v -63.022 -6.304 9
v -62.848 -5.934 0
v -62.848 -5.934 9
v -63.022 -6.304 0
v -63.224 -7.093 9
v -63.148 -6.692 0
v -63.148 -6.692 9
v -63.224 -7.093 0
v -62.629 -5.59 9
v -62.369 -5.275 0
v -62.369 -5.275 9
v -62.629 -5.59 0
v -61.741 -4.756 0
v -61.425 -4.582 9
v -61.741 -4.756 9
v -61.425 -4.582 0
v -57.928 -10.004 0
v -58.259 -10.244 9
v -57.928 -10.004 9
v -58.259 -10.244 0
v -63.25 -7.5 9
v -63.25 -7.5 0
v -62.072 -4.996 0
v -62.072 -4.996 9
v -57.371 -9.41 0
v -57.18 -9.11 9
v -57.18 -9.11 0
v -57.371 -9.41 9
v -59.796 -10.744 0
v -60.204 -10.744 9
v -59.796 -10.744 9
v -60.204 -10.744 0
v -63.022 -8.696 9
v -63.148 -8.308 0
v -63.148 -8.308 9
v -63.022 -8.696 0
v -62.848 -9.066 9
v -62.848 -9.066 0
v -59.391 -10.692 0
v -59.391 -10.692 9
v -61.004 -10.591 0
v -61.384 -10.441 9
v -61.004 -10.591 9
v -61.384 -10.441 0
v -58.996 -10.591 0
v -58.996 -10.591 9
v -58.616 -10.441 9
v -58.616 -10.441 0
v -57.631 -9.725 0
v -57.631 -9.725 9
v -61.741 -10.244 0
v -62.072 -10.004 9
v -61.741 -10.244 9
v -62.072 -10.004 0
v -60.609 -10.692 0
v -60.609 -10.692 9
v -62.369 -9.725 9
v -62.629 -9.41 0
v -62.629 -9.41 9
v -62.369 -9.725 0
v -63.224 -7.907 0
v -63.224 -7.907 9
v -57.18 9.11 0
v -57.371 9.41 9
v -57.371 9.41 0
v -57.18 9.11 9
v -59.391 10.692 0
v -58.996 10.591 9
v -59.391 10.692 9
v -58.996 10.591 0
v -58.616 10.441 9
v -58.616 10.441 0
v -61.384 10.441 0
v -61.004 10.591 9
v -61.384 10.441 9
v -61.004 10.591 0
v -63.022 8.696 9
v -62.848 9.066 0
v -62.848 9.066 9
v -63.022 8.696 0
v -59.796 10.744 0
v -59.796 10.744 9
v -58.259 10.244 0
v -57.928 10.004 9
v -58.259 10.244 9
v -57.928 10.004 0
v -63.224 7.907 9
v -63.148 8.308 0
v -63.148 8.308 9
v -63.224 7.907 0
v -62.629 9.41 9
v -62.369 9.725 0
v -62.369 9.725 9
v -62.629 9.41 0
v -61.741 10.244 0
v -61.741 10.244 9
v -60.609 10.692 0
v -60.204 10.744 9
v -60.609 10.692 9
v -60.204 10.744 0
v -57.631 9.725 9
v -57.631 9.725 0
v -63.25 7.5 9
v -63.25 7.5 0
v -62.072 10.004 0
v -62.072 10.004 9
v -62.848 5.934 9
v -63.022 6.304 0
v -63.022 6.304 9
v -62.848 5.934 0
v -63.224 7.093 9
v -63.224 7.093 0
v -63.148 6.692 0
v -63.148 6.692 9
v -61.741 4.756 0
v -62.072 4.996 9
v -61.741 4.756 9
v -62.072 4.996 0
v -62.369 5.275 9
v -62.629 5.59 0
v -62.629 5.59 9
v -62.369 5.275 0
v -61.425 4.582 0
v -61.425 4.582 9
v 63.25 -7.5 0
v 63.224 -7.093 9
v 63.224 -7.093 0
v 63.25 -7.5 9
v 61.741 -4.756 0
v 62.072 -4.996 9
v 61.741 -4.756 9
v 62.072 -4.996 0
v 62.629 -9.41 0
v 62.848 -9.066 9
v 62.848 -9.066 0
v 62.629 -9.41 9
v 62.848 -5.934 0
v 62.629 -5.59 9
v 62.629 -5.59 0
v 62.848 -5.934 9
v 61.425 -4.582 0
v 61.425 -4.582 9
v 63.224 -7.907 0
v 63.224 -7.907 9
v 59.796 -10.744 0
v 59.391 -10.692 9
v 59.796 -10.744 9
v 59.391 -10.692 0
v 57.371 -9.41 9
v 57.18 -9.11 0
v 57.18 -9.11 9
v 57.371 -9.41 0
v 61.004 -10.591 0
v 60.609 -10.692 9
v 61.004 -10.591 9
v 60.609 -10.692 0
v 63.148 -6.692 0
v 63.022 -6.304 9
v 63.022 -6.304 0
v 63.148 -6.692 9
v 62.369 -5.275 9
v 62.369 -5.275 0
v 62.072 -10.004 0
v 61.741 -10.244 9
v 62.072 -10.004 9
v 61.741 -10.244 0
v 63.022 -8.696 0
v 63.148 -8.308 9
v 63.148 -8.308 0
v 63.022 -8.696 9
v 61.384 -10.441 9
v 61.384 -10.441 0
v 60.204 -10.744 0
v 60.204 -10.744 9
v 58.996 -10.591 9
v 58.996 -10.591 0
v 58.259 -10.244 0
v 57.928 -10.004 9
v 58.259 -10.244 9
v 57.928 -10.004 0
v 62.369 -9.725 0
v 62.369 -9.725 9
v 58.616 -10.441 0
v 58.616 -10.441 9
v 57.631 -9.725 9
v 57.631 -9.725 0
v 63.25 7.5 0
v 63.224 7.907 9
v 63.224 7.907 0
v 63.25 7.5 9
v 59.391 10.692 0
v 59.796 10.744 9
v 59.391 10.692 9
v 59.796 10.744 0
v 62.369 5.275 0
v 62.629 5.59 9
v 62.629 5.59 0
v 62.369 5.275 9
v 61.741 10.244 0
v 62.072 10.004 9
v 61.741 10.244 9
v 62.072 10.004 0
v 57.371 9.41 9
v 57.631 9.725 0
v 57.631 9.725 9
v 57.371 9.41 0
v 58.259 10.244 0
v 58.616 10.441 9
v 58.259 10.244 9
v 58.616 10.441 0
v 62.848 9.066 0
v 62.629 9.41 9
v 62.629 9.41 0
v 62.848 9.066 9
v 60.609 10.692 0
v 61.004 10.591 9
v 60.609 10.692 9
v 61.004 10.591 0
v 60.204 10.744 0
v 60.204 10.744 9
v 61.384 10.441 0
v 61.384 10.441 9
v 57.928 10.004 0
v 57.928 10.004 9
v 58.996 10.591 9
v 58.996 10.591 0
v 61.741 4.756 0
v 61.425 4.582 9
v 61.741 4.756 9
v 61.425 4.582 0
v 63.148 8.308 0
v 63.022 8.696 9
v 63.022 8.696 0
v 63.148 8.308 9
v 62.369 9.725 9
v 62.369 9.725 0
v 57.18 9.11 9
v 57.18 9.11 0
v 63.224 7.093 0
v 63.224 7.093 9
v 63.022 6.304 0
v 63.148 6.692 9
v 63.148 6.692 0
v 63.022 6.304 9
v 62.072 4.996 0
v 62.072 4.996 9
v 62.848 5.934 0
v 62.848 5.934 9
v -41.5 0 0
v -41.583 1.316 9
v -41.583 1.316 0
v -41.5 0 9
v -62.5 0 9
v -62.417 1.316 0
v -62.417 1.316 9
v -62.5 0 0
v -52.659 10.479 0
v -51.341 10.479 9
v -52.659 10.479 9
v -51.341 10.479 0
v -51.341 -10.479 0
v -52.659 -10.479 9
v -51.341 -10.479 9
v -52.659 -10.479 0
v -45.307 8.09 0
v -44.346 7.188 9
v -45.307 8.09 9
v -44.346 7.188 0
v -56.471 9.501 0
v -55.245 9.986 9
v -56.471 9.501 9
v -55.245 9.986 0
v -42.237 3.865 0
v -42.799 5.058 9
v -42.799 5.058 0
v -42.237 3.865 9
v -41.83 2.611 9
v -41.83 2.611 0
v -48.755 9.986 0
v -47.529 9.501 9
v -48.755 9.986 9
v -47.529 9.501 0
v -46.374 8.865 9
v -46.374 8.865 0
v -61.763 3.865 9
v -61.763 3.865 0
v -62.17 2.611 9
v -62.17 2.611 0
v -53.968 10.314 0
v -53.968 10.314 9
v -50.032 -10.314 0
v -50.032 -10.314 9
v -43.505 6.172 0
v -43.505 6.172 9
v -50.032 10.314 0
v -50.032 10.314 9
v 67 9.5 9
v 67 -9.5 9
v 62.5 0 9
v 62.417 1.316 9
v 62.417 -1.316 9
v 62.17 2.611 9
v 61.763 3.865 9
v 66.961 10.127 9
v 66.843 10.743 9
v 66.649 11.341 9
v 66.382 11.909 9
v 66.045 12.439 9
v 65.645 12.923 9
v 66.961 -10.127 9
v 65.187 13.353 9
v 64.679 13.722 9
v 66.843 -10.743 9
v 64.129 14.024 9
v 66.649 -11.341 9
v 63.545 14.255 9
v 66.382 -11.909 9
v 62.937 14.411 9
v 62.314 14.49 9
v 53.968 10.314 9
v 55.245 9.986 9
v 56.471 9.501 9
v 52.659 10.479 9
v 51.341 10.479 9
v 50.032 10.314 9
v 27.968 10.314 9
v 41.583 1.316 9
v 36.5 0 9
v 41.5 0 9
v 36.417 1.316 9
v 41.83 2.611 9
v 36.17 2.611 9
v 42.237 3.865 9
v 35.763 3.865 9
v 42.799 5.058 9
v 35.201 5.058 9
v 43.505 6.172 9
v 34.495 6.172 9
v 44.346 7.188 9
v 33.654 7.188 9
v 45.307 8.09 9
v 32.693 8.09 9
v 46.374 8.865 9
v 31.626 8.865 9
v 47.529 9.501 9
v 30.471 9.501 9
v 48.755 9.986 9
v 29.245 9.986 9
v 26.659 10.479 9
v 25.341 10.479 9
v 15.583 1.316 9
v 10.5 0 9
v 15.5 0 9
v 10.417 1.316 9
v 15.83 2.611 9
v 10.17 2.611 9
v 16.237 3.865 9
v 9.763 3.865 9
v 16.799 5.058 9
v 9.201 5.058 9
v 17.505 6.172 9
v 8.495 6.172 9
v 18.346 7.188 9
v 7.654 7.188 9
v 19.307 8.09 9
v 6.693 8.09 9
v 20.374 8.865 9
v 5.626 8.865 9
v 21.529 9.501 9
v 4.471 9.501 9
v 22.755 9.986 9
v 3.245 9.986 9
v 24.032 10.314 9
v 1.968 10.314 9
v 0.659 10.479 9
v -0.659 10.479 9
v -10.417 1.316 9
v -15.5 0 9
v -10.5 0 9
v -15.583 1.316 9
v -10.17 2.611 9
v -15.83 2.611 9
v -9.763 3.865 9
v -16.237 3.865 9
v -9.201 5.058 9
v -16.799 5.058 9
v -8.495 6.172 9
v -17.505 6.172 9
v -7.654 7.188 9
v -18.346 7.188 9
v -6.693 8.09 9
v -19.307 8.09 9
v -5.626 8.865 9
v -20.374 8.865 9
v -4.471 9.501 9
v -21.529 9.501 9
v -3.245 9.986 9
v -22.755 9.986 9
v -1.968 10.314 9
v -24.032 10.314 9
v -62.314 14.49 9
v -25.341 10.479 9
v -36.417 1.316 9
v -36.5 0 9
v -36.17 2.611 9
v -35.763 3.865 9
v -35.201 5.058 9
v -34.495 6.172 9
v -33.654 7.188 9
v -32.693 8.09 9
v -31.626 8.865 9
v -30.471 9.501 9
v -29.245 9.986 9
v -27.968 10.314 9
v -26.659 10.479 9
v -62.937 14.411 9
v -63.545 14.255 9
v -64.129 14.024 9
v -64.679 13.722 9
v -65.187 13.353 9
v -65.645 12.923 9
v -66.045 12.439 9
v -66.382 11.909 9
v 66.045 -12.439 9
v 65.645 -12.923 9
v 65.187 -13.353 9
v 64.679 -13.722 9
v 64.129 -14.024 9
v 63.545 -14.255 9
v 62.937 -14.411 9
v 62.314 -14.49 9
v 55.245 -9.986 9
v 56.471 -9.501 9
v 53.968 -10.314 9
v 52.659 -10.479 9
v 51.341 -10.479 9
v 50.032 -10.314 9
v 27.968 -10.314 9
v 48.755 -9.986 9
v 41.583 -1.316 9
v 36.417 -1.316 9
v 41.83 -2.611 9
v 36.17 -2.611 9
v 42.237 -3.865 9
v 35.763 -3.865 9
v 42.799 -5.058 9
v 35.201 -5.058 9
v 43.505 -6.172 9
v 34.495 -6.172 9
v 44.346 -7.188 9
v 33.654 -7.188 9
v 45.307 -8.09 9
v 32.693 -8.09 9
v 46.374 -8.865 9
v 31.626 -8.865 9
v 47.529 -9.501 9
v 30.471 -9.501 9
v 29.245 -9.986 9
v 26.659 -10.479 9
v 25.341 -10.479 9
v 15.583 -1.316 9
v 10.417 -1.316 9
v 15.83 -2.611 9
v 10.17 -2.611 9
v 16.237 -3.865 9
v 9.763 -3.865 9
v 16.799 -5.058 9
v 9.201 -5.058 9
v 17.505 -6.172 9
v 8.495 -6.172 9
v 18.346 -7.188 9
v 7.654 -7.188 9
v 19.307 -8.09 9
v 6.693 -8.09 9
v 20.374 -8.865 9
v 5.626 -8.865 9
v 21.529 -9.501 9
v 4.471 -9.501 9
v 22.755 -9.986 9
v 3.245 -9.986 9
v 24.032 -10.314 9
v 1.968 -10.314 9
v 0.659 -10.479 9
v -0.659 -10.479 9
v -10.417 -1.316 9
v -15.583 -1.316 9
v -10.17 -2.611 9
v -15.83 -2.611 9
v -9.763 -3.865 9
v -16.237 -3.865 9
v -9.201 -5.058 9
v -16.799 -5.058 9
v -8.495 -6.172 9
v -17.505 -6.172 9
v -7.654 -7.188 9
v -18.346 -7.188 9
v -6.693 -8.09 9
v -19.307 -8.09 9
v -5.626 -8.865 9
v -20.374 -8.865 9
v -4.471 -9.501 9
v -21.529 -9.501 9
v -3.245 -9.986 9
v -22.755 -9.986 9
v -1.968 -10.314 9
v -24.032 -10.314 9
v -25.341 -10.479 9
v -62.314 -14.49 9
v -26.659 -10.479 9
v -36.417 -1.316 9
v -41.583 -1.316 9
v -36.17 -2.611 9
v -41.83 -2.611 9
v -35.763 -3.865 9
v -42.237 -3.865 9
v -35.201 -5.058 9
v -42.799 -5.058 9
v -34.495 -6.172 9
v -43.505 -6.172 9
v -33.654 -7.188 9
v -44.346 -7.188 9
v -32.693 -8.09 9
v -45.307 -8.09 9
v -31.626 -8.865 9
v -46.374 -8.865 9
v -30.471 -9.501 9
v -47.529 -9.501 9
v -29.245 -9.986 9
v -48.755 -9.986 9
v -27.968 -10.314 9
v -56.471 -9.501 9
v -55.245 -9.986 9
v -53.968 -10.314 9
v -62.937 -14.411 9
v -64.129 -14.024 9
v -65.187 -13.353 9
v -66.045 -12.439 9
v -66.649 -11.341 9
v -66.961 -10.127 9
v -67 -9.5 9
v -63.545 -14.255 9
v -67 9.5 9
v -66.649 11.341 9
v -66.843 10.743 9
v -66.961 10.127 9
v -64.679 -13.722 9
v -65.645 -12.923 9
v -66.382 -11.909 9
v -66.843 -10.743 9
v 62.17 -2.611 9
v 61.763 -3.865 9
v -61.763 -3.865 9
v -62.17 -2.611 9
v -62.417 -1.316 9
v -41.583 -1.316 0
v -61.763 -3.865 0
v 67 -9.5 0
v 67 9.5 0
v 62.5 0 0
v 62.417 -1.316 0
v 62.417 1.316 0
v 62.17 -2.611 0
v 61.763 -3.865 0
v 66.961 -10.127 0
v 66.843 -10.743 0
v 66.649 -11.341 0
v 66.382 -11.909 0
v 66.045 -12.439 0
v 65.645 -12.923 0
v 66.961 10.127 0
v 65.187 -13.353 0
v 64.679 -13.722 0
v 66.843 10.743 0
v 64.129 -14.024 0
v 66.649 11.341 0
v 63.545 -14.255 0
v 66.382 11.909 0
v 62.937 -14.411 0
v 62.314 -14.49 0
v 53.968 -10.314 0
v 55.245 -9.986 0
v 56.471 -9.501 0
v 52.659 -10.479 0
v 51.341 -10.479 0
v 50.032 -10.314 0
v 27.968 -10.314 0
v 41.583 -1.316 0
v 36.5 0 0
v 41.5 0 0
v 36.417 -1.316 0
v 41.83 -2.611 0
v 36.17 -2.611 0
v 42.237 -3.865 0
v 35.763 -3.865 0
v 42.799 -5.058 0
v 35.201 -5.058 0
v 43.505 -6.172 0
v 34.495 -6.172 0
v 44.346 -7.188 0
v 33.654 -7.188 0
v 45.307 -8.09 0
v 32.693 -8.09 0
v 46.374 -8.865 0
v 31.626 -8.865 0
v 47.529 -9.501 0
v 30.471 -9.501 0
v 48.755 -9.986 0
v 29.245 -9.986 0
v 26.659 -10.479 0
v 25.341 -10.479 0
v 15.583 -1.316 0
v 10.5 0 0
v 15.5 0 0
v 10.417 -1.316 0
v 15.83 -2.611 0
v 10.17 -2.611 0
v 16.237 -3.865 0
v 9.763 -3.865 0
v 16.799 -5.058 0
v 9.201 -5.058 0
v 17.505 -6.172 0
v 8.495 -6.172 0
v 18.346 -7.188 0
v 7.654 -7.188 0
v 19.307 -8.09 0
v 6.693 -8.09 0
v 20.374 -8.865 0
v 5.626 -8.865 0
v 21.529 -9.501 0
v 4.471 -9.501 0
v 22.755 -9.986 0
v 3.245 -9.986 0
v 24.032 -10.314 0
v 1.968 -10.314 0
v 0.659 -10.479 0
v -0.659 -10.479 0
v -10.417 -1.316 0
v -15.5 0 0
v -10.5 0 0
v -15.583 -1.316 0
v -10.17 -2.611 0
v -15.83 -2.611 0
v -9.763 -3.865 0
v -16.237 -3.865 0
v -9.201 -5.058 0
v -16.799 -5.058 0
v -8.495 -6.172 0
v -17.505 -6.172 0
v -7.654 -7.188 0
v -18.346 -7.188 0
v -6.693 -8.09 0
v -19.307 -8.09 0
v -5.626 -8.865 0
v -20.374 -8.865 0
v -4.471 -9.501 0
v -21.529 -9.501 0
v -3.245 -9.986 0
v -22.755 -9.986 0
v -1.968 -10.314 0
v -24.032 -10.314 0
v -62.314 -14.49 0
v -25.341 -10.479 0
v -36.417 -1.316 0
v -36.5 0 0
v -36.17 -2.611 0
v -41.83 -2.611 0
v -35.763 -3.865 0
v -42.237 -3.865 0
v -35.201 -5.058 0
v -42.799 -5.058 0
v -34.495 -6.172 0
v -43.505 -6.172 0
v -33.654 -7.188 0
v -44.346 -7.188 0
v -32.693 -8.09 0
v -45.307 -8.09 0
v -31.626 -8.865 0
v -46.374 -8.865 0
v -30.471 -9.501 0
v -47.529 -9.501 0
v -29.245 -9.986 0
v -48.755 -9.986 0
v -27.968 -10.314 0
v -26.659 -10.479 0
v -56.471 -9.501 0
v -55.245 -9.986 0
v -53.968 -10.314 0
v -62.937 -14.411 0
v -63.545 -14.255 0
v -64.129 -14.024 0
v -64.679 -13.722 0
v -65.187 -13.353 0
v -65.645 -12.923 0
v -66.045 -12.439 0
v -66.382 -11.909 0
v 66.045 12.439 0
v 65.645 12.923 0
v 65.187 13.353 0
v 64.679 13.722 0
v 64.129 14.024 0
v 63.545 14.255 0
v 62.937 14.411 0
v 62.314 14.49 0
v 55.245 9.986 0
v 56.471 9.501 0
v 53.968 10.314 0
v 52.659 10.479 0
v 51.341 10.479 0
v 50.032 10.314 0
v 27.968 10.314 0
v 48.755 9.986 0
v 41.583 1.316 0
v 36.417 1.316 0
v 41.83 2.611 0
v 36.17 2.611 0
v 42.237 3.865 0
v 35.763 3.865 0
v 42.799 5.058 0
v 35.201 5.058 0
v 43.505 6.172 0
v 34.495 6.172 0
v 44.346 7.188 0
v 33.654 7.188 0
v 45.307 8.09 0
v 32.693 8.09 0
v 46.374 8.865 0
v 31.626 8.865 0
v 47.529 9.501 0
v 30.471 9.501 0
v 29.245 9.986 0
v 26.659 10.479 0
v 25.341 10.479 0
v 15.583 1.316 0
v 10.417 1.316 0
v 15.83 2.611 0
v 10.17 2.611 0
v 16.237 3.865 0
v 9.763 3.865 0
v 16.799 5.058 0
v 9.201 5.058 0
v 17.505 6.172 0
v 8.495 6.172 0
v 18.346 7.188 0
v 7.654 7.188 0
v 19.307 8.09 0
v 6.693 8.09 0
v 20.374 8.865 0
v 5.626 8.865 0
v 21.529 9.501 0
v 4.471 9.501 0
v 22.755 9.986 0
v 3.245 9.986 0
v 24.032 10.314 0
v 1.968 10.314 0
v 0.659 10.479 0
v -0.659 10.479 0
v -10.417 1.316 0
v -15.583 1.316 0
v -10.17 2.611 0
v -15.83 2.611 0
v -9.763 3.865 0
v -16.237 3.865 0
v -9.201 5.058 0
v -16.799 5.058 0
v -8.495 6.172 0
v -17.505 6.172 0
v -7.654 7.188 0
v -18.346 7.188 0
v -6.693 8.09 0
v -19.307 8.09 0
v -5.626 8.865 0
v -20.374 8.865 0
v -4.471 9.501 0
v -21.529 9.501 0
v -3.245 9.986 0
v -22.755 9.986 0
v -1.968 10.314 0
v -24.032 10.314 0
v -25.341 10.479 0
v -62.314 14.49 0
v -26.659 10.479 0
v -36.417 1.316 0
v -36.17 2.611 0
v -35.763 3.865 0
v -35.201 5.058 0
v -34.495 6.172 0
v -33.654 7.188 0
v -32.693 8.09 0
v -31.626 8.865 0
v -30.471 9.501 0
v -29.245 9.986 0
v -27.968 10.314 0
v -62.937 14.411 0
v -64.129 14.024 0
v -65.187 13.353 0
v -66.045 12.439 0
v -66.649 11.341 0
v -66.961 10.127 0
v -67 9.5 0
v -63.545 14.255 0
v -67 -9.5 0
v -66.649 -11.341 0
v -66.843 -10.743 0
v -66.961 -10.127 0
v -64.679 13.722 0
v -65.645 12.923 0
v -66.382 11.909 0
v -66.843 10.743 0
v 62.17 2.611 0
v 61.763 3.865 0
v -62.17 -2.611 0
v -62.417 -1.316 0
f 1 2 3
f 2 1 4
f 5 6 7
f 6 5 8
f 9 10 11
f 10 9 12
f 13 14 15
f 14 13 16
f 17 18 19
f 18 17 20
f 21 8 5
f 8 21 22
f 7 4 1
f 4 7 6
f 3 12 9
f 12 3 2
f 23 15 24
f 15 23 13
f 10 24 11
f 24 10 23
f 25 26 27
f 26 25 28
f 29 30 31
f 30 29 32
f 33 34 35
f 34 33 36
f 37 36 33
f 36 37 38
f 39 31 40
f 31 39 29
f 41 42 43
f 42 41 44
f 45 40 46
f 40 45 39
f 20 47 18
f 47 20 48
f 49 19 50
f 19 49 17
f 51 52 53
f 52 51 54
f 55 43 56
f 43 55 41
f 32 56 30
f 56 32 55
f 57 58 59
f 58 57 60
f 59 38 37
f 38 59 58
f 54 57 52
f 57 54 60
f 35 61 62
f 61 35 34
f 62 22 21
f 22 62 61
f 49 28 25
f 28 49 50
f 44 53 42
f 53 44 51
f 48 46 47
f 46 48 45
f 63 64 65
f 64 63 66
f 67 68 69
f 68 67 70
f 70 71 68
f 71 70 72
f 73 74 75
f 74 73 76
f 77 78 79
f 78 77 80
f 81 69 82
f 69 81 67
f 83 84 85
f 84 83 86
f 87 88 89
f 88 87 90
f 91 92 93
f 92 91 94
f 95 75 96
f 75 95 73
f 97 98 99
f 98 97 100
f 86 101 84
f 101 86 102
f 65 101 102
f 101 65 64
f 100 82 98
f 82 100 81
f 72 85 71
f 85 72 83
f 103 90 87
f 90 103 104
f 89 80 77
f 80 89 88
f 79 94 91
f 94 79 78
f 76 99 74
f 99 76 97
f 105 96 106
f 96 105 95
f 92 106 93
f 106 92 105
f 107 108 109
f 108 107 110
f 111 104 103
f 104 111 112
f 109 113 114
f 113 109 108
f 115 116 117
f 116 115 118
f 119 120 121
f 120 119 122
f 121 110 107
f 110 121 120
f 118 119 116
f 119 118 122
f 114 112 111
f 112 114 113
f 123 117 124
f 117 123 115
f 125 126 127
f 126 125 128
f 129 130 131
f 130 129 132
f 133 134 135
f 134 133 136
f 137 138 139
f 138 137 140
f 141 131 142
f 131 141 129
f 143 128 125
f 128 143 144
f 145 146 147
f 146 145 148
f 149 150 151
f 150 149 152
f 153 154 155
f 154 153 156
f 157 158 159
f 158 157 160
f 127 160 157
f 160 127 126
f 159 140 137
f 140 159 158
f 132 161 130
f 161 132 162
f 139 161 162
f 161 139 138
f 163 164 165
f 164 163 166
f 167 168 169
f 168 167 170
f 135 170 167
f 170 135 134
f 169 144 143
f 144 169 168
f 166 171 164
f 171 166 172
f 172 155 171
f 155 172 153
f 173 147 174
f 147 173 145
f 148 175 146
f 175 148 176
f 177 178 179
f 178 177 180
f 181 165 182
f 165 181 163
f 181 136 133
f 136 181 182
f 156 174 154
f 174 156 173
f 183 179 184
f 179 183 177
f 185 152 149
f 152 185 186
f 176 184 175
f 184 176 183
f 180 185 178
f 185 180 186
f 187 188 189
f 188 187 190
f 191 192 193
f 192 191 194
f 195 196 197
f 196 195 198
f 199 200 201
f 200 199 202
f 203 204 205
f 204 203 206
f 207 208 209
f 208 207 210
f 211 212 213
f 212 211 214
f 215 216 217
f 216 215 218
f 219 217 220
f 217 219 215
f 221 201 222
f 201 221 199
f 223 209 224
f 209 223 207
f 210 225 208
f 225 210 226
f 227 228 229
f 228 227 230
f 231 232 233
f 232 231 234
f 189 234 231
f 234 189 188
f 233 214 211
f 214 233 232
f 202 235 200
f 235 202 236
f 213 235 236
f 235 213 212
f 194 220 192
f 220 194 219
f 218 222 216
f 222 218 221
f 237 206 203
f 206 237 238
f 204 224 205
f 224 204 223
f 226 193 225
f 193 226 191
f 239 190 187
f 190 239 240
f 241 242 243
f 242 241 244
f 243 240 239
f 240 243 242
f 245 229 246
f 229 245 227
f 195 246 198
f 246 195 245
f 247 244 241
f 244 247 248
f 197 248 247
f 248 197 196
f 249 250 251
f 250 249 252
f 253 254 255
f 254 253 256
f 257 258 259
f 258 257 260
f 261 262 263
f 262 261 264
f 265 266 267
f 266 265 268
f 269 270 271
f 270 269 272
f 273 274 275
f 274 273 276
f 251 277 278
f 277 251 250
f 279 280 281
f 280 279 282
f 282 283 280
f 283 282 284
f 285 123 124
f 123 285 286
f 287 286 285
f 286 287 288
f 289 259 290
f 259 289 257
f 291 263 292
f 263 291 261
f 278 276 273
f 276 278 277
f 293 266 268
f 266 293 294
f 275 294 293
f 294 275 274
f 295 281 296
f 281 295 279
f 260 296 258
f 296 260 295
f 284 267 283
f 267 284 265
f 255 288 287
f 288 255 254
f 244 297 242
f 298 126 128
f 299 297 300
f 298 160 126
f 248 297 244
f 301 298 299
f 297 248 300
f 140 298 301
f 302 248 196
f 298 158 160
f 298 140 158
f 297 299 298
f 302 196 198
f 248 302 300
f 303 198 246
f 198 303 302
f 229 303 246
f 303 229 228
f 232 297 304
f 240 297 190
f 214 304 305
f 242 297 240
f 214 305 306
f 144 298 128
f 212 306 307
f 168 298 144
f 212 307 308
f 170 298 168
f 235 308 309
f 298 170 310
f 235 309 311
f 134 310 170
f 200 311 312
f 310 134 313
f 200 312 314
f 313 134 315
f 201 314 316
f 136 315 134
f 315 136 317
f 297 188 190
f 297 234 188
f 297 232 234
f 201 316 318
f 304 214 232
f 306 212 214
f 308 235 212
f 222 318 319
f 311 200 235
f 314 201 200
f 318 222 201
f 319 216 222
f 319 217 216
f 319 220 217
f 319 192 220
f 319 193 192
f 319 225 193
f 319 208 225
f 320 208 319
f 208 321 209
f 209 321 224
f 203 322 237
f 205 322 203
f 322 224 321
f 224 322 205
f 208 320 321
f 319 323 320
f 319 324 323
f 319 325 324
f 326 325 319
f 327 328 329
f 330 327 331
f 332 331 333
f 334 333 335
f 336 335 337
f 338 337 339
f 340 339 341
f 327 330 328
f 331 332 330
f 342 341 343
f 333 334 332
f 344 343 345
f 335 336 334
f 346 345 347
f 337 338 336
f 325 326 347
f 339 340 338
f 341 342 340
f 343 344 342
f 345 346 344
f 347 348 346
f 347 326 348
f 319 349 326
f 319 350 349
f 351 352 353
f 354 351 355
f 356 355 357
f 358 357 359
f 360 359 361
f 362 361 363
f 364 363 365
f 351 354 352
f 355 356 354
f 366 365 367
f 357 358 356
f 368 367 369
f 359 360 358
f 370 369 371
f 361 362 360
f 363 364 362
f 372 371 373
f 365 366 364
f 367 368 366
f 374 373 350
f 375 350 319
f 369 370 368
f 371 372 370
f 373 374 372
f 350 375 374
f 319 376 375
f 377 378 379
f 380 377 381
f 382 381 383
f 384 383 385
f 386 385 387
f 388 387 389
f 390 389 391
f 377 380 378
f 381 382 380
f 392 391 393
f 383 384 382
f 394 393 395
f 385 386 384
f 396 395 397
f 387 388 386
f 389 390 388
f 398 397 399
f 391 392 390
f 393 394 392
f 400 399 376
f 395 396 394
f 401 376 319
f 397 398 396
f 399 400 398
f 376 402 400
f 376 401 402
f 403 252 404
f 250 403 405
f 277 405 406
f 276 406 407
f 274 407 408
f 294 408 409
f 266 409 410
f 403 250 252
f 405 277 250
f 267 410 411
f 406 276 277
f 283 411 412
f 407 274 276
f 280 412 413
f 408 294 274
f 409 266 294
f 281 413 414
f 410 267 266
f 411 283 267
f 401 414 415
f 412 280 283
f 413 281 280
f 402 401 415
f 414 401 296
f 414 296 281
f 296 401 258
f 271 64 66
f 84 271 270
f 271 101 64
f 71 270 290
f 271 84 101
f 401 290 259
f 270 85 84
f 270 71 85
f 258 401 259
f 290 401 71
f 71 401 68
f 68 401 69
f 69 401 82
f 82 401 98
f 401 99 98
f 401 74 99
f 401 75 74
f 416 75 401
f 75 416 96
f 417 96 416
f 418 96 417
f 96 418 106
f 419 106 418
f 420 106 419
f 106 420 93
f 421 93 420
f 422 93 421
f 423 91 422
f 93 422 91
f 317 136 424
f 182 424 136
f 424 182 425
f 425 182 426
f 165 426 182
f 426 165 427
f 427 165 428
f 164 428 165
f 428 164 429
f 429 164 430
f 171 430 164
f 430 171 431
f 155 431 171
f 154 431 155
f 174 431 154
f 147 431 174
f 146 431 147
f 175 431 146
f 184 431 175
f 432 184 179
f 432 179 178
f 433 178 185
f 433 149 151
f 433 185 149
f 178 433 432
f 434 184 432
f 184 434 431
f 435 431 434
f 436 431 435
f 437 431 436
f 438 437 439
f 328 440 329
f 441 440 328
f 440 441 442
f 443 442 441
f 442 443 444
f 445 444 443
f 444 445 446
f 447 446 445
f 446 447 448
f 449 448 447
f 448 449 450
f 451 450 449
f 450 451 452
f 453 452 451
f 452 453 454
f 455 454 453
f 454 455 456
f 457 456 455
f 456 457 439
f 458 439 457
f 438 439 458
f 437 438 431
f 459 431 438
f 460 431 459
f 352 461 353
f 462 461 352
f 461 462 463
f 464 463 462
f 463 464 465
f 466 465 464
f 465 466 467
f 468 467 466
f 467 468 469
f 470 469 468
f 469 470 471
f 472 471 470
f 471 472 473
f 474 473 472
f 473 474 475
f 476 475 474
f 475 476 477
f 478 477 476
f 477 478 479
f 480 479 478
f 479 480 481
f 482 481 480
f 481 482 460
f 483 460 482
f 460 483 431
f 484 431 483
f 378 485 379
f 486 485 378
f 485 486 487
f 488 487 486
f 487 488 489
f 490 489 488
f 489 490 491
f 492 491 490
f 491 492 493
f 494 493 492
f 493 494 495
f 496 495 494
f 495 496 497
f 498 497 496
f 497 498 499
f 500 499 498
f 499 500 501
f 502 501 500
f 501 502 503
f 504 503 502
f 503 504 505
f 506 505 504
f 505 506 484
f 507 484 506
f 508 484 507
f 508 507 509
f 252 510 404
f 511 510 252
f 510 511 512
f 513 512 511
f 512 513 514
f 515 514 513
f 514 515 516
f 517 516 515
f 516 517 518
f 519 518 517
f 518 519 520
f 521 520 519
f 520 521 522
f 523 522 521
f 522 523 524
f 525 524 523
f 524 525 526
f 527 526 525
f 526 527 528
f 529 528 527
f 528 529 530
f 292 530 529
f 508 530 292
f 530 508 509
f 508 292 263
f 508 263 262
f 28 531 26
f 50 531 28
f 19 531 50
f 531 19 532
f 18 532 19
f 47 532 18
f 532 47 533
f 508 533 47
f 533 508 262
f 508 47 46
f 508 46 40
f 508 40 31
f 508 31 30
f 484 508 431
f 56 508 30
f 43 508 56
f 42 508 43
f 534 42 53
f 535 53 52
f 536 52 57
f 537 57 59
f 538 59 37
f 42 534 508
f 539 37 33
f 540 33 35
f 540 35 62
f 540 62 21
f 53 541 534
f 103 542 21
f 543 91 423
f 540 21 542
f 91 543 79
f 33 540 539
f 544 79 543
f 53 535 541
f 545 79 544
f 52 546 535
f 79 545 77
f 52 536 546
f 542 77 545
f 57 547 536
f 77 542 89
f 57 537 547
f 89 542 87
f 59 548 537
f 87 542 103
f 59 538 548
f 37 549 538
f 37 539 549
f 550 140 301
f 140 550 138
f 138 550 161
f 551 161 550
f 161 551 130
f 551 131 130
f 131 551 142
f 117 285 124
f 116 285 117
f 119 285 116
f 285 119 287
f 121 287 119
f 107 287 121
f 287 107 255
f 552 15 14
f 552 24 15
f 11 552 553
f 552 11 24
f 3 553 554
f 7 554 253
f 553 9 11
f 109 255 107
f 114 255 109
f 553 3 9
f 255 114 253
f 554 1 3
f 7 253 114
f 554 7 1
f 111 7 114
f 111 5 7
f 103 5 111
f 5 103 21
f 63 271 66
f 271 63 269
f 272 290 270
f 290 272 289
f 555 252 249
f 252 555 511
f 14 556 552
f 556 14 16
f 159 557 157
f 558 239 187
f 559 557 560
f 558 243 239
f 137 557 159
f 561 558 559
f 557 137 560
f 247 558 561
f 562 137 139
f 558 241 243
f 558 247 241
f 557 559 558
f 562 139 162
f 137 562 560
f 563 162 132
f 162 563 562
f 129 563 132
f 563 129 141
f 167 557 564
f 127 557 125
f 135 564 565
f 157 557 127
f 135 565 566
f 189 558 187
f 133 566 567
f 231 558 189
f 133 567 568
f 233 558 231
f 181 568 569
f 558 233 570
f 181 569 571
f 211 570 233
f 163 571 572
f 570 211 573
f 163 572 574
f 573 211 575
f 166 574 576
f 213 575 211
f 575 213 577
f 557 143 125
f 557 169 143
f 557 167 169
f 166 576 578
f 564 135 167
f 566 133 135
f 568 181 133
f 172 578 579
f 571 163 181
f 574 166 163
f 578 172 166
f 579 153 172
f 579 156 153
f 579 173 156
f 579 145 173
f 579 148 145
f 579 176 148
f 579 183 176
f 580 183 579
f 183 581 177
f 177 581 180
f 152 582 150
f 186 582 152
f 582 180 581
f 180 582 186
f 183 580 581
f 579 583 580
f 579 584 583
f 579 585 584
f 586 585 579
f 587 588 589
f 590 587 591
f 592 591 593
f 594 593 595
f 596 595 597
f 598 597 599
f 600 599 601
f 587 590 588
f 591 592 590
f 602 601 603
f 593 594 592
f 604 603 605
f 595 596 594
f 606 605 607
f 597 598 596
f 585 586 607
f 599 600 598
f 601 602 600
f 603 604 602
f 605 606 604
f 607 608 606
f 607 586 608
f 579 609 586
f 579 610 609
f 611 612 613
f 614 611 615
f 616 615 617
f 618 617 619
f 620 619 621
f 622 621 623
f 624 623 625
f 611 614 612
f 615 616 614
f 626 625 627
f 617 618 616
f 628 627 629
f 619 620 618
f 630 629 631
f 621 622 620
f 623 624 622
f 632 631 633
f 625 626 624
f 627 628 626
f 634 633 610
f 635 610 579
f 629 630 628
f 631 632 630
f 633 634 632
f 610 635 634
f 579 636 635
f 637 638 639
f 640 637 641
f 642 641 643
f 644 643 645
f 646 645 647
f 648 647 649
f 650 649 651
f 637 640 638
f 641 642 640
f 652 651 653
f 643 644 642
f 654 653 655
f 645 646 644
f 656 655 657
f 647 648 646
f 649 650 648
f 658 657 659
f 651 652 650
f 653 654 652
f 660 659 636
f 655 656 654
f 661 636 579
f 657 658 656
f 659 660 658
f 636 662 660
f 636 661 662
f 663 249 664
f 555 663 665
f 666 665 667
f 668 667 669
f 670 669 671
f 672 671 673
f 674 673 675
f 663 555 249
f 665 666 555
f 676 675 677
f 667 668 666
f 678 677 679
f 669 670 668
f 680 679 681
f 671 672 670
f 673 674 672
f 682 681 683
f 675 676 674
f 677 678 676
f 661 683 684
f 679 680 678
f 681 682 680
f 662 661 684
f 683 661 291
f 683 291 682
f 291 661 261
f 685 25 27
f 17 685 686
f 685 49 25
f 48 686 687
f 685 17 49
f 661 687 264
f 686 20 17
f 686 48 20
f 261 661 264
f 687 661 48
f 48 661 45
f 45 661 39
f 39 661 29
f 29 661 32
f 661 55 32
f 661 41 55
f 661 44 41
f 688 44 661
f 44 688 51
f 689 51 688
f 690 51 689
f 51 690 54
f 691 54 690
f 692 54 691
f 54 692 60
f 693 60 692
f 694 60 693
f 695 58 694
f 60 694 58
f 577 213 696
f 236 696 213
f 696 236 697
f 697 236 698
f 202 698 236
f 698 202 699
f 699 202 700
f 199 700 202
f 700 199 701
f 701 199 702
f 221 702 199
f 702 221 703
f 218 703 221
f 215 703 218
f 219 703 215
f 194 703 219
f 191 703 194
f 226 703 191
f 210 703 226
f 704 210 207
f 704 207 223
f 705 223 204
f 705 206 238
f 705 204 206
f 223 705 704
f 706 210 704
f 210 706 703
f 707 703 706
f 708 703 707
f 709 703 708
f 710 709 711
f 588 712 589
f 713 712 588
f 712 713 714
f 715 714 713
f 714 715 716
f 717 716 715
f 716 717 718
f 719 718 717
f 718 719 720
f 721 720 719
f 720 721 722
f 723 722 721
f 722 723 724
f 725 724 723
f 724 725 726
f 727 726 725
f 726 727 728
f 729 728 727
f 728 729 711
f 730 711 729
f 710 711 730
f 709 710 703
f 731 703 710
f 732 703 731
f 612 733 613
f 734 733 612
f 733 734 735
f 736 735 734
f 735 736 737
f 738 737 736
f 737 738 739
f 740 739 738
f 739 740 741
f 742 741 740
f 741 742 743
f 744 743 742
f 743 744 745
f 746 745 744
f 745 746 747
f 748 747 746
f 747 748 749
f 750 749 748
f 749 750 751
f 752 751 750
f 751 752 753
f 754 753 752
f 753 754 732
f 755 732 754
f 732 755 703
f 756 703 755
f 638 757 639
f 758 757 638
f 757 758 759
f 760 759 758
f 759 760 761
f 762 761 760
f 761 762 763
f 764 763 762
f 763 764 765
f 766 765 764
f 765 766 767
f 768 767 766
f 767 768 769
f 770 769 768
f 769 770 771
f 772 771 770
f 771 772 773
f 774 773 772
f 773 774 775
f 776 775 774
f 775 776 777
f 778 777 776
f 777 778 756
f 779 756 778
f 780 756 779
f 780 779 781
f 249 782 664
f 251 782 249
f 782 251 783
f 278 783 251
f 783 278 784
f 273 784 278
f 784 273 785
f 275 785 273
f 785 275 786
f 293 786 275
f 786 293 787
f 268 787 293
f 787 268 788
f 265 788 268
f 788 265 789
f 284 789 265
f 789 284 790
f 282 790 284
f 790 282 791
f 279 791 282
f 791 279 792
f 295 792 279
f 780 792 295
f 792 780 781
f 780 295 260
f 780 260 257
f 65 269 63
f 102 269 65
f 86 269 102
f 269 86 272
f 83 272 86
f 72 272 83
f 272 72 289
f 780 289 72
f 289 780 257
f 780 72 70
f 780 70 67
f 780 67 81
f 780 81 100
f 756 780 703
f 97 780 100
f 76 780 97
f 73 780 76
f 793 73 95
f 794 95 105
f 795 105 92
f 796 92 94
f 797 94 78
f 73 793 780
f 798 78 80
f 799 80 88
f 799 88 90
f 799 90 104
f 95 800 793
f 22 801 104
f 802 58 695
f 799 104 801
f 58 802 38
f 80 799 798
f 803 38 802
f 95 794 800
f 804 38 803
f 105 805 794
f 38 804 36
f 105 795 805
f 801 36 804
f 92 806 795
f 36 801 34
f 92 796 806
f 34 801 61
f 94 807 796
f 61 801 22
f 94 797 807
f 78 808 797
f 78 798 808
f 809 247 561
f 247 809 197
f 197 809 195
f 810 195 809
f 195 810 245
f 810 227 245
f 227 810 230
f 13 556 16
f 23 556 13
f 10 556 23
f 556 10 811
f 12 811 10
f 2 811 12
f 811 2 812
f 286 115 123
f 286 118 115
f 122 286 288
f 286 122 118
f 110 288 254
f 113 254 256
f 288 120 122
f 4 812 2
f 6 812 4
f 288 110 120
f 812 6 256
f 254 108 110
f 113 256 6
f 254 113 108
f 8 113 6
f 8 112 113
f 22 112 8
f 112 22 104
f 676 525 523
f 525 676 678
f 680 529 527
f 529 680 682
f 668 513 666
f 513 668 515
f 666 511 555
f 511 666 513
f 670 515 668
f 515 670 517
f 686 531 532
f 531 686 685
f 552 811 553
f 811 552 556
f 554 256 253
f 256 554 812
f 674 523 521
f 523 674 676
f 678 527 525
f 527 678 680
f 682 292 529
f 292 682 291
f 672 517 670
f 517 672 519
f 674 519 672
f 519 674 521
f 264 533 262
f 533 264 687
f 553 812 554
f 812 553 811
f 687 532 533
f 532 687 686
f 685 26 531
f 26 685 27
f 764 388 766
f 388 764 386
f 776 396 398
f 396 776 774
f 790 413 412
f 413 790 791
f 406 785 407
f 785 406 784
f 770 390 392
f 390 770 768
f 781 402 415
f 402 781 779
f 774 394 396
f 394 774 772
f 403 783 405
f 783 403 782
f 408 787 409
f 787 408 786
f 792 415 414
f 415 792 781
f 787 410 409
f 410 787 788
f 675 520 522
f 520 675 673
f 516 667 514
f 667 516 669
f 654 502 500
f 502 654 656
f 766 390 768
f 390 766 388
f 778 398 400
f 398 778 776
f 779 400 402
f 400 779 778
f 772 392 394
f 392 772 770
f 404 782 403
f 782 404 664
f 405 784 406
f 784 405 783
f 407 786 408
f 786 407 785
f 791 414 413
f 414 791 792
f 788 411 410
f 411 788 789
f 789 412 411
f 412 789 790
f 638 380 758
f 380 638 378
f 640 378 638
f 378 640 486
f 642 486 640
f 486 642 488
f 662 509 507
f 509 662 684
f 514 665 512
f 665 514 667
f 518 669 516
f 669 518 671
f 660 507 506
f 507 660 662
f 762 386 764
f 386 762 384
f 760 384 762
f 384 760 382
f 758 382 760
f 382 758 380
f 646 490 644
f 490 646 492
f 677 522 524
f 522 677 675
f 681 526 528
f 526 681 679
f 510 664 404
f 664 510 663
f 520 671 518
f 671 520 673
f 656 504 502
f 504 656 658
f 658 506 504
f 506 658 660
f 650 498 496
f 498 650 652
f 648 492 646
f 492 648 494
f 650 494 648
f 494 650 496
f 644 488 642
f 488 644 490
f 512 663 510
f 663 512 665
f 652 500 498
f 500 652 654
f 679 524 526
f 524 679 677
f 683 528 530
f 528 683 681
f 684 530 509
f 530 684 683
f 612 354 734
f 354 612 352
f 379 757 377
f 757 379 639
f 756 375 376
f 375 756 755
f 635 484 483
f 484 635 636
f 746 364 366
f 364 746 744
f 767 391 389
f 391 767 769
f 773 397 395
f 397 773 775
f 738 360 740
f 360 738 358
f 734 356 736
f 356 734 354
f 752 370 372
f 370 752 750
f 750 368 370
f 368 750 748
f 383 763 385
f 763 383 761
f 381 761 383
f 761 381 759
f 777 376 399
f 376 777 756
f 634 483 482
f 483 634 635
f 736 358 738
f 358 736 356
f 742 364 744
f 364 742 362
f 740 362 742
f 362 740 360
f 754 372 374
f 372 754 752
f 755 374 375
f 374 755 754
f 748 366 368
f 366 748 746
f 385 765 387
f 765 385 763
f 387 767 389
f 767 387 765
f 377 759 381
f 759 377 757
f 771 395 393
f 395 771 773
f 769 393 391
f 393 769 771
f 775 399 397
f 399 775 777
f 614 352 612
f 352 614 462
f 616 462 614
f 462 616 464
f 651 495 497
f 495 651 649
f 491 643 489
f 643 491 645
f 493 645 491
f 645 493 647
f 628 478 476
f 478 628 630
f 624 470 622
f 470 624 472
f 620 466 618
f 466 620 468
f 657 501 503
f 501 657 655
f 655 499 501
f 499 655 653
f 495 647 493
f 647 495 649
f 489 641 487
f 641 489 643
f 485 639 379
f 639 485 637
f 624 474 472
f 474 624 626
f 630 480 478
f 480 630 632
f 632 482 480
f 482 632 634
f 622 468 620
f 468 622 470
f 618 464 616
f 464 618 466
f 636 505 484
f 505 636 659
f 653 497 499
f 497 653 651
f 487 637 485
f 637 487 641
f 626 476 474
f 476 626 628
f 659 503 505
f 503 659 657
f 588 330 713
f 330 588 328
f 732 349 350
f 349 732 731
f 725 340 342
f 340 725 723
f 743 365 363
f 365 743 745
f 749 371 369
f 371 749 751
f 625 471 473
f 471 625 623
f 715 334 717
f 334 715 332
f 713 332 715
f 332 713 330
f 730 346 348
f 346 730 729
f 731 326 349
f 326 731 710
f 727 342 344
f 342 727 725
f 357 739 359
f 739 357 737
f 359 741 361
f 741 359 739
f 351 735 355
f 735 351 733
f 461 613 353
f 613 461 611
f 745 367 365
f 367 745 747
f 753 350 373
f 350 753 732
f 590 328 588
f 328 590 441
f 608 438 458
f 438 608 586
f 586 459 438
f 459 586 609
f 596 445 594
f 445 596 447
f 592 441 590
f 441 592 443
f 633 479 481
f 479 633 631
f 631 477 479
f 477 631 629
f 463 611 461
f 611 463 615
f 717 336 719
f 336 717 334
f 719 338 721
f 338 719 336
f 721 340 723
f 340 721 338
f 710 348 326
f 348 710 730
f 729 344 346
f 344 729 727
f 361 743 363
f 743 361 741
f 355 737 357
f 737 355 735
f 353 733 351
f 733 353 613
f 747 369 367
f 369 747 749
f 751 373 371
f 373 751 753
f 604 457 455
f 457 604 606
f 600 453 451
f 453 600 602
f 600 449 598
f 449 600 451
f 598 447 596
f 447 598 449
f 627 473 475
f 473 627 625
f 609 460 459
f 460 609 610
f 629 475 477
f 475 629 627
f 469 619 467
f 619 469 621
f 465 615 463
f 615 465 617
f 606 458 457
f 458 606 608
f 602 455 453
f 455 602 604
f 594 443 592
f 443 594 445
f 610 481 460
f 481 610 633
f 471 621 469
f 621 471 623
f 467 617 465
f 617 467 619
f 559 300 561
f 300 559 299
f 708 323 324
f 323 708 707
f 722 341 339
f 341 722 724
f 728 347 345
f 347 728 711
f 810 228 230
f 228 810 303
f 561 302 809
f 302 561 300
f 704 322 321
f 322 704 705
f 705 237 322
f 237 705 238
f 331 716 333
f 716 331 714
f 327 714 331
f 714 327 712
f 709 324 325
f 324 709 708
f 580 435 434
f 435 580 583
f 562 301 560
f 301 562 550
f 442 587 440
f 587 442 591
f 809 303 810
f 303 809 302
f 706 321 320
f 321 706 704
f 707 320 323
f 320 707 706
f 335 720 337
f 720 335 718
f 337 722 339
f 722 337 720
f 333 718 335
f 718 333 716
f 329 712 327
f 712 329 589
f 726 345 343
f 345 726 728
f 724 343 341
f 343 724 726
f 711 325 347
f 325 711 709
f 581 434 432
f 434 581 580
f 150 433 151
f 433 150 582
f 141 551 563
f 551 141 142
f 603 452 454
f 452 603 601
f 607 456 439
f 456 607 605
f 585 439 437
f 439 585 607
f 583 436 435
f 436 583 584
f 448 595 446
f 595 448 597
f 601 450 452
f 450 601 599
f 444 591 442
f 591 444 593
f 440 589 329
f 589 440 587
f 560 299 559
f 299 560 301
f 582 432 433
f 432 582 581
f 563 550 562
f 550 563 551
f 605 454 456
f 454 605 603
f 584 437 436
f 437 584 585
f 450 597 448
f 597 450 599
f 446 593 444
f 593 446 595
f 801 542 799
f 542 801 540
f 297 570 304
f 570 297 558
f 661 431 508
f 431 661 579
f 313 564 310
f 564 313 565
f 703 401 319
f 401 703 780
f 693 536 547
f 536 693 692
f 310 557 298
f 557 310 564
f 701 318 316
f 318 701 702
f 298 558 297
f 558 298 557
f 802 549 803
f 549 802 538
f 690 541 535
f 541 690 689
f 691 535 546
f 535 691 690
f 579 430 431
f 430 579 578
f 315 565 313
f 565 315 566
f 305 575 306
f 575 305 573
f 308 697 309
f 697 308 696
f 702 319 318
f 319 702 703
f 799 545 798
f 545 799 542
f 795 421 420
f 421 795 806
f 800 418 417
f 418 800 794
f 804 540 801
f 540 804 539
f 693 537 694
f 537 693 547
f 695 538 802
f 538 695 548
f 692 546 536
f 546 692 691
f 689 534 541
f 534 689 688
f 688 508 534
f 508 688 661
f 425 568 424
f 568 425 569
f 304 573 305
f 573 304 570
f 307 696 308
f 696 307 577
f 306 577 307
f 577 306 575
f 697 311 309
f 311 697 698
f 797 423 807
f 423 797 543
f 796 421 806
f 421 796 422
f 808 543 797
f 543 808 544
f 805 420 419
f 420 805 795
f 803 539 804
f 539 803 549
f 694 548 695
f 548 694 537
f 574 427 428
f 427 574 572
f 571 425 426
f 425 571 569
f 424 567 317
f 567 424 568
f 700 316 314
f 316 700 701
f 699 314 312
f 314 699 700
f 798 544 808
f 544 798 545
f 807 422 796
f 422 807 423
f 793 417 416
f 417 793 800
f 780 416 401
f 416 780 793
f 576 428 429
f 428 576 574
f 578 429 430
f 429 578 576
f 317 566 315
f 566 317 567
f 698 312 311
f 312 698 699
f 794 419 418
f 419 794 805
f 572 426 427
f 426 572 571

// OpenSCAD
$fn = 50;


difference() {
	union() {
		hull() {
			translate(v = [-62.0000000000, 9.5000000000, 0]) {
				cylinder(h = 9, r = 5);
			}
			translate(v = [62.0000000000, 9.5000000000, 0]) {
				cylinder(h = 9, r = 5);
			}
			translate(v = [-62.0000000000, -9.5000000000, 0]) {
				cylinder(h = 9, r = 5);
			}
			translate(v = [62.0000000000, -9.5000000000, 0]) {
				cylinder(h = 9, r = 5);
			}
		}
	}
	union() {
		#translate(v = [-60.0000000000, -7.5000000000, -100.0000000000]) {
			cylinder(h = 200, r = 3.2500000000);
		}
		#translate(v = [-60.0000000000, 7.5000000000, -100.0000000000]) {
			cylinder(h = 200, r = 3.2500000000);
		}
		#translate(v = [60.0000000000, -7.5000000000, -100.0000000000]) {
			cylinder(h = 200, r = 3.2500000000);
		}
		#translate(v = [60.0000000000, 7.5000000000, -100.0000000000]) {
			cylinder(h = 200, r = 3.2500000000);
		}
		#translate(v = [-52.0000000000, 0, 0]) {
			cylinder(h = 9, r = 10.5000000000);
		}
		#translate(v = [-26.0000000000, 0, 0]) {
			cylinder(h = 9, r = 10.5000000000);
		}
		#cylinder(h = 9, r = 10.5000000000);
		#translate(v = [26.0000000000, 0, 0]) {
			cylinder(h = 9, r = 10.5000000000);
		}
		#translate(v = [52.0000000000, 0, 0]) {
			cylinder(h = 9, r = 10.5000000000);
		}
	}
}
